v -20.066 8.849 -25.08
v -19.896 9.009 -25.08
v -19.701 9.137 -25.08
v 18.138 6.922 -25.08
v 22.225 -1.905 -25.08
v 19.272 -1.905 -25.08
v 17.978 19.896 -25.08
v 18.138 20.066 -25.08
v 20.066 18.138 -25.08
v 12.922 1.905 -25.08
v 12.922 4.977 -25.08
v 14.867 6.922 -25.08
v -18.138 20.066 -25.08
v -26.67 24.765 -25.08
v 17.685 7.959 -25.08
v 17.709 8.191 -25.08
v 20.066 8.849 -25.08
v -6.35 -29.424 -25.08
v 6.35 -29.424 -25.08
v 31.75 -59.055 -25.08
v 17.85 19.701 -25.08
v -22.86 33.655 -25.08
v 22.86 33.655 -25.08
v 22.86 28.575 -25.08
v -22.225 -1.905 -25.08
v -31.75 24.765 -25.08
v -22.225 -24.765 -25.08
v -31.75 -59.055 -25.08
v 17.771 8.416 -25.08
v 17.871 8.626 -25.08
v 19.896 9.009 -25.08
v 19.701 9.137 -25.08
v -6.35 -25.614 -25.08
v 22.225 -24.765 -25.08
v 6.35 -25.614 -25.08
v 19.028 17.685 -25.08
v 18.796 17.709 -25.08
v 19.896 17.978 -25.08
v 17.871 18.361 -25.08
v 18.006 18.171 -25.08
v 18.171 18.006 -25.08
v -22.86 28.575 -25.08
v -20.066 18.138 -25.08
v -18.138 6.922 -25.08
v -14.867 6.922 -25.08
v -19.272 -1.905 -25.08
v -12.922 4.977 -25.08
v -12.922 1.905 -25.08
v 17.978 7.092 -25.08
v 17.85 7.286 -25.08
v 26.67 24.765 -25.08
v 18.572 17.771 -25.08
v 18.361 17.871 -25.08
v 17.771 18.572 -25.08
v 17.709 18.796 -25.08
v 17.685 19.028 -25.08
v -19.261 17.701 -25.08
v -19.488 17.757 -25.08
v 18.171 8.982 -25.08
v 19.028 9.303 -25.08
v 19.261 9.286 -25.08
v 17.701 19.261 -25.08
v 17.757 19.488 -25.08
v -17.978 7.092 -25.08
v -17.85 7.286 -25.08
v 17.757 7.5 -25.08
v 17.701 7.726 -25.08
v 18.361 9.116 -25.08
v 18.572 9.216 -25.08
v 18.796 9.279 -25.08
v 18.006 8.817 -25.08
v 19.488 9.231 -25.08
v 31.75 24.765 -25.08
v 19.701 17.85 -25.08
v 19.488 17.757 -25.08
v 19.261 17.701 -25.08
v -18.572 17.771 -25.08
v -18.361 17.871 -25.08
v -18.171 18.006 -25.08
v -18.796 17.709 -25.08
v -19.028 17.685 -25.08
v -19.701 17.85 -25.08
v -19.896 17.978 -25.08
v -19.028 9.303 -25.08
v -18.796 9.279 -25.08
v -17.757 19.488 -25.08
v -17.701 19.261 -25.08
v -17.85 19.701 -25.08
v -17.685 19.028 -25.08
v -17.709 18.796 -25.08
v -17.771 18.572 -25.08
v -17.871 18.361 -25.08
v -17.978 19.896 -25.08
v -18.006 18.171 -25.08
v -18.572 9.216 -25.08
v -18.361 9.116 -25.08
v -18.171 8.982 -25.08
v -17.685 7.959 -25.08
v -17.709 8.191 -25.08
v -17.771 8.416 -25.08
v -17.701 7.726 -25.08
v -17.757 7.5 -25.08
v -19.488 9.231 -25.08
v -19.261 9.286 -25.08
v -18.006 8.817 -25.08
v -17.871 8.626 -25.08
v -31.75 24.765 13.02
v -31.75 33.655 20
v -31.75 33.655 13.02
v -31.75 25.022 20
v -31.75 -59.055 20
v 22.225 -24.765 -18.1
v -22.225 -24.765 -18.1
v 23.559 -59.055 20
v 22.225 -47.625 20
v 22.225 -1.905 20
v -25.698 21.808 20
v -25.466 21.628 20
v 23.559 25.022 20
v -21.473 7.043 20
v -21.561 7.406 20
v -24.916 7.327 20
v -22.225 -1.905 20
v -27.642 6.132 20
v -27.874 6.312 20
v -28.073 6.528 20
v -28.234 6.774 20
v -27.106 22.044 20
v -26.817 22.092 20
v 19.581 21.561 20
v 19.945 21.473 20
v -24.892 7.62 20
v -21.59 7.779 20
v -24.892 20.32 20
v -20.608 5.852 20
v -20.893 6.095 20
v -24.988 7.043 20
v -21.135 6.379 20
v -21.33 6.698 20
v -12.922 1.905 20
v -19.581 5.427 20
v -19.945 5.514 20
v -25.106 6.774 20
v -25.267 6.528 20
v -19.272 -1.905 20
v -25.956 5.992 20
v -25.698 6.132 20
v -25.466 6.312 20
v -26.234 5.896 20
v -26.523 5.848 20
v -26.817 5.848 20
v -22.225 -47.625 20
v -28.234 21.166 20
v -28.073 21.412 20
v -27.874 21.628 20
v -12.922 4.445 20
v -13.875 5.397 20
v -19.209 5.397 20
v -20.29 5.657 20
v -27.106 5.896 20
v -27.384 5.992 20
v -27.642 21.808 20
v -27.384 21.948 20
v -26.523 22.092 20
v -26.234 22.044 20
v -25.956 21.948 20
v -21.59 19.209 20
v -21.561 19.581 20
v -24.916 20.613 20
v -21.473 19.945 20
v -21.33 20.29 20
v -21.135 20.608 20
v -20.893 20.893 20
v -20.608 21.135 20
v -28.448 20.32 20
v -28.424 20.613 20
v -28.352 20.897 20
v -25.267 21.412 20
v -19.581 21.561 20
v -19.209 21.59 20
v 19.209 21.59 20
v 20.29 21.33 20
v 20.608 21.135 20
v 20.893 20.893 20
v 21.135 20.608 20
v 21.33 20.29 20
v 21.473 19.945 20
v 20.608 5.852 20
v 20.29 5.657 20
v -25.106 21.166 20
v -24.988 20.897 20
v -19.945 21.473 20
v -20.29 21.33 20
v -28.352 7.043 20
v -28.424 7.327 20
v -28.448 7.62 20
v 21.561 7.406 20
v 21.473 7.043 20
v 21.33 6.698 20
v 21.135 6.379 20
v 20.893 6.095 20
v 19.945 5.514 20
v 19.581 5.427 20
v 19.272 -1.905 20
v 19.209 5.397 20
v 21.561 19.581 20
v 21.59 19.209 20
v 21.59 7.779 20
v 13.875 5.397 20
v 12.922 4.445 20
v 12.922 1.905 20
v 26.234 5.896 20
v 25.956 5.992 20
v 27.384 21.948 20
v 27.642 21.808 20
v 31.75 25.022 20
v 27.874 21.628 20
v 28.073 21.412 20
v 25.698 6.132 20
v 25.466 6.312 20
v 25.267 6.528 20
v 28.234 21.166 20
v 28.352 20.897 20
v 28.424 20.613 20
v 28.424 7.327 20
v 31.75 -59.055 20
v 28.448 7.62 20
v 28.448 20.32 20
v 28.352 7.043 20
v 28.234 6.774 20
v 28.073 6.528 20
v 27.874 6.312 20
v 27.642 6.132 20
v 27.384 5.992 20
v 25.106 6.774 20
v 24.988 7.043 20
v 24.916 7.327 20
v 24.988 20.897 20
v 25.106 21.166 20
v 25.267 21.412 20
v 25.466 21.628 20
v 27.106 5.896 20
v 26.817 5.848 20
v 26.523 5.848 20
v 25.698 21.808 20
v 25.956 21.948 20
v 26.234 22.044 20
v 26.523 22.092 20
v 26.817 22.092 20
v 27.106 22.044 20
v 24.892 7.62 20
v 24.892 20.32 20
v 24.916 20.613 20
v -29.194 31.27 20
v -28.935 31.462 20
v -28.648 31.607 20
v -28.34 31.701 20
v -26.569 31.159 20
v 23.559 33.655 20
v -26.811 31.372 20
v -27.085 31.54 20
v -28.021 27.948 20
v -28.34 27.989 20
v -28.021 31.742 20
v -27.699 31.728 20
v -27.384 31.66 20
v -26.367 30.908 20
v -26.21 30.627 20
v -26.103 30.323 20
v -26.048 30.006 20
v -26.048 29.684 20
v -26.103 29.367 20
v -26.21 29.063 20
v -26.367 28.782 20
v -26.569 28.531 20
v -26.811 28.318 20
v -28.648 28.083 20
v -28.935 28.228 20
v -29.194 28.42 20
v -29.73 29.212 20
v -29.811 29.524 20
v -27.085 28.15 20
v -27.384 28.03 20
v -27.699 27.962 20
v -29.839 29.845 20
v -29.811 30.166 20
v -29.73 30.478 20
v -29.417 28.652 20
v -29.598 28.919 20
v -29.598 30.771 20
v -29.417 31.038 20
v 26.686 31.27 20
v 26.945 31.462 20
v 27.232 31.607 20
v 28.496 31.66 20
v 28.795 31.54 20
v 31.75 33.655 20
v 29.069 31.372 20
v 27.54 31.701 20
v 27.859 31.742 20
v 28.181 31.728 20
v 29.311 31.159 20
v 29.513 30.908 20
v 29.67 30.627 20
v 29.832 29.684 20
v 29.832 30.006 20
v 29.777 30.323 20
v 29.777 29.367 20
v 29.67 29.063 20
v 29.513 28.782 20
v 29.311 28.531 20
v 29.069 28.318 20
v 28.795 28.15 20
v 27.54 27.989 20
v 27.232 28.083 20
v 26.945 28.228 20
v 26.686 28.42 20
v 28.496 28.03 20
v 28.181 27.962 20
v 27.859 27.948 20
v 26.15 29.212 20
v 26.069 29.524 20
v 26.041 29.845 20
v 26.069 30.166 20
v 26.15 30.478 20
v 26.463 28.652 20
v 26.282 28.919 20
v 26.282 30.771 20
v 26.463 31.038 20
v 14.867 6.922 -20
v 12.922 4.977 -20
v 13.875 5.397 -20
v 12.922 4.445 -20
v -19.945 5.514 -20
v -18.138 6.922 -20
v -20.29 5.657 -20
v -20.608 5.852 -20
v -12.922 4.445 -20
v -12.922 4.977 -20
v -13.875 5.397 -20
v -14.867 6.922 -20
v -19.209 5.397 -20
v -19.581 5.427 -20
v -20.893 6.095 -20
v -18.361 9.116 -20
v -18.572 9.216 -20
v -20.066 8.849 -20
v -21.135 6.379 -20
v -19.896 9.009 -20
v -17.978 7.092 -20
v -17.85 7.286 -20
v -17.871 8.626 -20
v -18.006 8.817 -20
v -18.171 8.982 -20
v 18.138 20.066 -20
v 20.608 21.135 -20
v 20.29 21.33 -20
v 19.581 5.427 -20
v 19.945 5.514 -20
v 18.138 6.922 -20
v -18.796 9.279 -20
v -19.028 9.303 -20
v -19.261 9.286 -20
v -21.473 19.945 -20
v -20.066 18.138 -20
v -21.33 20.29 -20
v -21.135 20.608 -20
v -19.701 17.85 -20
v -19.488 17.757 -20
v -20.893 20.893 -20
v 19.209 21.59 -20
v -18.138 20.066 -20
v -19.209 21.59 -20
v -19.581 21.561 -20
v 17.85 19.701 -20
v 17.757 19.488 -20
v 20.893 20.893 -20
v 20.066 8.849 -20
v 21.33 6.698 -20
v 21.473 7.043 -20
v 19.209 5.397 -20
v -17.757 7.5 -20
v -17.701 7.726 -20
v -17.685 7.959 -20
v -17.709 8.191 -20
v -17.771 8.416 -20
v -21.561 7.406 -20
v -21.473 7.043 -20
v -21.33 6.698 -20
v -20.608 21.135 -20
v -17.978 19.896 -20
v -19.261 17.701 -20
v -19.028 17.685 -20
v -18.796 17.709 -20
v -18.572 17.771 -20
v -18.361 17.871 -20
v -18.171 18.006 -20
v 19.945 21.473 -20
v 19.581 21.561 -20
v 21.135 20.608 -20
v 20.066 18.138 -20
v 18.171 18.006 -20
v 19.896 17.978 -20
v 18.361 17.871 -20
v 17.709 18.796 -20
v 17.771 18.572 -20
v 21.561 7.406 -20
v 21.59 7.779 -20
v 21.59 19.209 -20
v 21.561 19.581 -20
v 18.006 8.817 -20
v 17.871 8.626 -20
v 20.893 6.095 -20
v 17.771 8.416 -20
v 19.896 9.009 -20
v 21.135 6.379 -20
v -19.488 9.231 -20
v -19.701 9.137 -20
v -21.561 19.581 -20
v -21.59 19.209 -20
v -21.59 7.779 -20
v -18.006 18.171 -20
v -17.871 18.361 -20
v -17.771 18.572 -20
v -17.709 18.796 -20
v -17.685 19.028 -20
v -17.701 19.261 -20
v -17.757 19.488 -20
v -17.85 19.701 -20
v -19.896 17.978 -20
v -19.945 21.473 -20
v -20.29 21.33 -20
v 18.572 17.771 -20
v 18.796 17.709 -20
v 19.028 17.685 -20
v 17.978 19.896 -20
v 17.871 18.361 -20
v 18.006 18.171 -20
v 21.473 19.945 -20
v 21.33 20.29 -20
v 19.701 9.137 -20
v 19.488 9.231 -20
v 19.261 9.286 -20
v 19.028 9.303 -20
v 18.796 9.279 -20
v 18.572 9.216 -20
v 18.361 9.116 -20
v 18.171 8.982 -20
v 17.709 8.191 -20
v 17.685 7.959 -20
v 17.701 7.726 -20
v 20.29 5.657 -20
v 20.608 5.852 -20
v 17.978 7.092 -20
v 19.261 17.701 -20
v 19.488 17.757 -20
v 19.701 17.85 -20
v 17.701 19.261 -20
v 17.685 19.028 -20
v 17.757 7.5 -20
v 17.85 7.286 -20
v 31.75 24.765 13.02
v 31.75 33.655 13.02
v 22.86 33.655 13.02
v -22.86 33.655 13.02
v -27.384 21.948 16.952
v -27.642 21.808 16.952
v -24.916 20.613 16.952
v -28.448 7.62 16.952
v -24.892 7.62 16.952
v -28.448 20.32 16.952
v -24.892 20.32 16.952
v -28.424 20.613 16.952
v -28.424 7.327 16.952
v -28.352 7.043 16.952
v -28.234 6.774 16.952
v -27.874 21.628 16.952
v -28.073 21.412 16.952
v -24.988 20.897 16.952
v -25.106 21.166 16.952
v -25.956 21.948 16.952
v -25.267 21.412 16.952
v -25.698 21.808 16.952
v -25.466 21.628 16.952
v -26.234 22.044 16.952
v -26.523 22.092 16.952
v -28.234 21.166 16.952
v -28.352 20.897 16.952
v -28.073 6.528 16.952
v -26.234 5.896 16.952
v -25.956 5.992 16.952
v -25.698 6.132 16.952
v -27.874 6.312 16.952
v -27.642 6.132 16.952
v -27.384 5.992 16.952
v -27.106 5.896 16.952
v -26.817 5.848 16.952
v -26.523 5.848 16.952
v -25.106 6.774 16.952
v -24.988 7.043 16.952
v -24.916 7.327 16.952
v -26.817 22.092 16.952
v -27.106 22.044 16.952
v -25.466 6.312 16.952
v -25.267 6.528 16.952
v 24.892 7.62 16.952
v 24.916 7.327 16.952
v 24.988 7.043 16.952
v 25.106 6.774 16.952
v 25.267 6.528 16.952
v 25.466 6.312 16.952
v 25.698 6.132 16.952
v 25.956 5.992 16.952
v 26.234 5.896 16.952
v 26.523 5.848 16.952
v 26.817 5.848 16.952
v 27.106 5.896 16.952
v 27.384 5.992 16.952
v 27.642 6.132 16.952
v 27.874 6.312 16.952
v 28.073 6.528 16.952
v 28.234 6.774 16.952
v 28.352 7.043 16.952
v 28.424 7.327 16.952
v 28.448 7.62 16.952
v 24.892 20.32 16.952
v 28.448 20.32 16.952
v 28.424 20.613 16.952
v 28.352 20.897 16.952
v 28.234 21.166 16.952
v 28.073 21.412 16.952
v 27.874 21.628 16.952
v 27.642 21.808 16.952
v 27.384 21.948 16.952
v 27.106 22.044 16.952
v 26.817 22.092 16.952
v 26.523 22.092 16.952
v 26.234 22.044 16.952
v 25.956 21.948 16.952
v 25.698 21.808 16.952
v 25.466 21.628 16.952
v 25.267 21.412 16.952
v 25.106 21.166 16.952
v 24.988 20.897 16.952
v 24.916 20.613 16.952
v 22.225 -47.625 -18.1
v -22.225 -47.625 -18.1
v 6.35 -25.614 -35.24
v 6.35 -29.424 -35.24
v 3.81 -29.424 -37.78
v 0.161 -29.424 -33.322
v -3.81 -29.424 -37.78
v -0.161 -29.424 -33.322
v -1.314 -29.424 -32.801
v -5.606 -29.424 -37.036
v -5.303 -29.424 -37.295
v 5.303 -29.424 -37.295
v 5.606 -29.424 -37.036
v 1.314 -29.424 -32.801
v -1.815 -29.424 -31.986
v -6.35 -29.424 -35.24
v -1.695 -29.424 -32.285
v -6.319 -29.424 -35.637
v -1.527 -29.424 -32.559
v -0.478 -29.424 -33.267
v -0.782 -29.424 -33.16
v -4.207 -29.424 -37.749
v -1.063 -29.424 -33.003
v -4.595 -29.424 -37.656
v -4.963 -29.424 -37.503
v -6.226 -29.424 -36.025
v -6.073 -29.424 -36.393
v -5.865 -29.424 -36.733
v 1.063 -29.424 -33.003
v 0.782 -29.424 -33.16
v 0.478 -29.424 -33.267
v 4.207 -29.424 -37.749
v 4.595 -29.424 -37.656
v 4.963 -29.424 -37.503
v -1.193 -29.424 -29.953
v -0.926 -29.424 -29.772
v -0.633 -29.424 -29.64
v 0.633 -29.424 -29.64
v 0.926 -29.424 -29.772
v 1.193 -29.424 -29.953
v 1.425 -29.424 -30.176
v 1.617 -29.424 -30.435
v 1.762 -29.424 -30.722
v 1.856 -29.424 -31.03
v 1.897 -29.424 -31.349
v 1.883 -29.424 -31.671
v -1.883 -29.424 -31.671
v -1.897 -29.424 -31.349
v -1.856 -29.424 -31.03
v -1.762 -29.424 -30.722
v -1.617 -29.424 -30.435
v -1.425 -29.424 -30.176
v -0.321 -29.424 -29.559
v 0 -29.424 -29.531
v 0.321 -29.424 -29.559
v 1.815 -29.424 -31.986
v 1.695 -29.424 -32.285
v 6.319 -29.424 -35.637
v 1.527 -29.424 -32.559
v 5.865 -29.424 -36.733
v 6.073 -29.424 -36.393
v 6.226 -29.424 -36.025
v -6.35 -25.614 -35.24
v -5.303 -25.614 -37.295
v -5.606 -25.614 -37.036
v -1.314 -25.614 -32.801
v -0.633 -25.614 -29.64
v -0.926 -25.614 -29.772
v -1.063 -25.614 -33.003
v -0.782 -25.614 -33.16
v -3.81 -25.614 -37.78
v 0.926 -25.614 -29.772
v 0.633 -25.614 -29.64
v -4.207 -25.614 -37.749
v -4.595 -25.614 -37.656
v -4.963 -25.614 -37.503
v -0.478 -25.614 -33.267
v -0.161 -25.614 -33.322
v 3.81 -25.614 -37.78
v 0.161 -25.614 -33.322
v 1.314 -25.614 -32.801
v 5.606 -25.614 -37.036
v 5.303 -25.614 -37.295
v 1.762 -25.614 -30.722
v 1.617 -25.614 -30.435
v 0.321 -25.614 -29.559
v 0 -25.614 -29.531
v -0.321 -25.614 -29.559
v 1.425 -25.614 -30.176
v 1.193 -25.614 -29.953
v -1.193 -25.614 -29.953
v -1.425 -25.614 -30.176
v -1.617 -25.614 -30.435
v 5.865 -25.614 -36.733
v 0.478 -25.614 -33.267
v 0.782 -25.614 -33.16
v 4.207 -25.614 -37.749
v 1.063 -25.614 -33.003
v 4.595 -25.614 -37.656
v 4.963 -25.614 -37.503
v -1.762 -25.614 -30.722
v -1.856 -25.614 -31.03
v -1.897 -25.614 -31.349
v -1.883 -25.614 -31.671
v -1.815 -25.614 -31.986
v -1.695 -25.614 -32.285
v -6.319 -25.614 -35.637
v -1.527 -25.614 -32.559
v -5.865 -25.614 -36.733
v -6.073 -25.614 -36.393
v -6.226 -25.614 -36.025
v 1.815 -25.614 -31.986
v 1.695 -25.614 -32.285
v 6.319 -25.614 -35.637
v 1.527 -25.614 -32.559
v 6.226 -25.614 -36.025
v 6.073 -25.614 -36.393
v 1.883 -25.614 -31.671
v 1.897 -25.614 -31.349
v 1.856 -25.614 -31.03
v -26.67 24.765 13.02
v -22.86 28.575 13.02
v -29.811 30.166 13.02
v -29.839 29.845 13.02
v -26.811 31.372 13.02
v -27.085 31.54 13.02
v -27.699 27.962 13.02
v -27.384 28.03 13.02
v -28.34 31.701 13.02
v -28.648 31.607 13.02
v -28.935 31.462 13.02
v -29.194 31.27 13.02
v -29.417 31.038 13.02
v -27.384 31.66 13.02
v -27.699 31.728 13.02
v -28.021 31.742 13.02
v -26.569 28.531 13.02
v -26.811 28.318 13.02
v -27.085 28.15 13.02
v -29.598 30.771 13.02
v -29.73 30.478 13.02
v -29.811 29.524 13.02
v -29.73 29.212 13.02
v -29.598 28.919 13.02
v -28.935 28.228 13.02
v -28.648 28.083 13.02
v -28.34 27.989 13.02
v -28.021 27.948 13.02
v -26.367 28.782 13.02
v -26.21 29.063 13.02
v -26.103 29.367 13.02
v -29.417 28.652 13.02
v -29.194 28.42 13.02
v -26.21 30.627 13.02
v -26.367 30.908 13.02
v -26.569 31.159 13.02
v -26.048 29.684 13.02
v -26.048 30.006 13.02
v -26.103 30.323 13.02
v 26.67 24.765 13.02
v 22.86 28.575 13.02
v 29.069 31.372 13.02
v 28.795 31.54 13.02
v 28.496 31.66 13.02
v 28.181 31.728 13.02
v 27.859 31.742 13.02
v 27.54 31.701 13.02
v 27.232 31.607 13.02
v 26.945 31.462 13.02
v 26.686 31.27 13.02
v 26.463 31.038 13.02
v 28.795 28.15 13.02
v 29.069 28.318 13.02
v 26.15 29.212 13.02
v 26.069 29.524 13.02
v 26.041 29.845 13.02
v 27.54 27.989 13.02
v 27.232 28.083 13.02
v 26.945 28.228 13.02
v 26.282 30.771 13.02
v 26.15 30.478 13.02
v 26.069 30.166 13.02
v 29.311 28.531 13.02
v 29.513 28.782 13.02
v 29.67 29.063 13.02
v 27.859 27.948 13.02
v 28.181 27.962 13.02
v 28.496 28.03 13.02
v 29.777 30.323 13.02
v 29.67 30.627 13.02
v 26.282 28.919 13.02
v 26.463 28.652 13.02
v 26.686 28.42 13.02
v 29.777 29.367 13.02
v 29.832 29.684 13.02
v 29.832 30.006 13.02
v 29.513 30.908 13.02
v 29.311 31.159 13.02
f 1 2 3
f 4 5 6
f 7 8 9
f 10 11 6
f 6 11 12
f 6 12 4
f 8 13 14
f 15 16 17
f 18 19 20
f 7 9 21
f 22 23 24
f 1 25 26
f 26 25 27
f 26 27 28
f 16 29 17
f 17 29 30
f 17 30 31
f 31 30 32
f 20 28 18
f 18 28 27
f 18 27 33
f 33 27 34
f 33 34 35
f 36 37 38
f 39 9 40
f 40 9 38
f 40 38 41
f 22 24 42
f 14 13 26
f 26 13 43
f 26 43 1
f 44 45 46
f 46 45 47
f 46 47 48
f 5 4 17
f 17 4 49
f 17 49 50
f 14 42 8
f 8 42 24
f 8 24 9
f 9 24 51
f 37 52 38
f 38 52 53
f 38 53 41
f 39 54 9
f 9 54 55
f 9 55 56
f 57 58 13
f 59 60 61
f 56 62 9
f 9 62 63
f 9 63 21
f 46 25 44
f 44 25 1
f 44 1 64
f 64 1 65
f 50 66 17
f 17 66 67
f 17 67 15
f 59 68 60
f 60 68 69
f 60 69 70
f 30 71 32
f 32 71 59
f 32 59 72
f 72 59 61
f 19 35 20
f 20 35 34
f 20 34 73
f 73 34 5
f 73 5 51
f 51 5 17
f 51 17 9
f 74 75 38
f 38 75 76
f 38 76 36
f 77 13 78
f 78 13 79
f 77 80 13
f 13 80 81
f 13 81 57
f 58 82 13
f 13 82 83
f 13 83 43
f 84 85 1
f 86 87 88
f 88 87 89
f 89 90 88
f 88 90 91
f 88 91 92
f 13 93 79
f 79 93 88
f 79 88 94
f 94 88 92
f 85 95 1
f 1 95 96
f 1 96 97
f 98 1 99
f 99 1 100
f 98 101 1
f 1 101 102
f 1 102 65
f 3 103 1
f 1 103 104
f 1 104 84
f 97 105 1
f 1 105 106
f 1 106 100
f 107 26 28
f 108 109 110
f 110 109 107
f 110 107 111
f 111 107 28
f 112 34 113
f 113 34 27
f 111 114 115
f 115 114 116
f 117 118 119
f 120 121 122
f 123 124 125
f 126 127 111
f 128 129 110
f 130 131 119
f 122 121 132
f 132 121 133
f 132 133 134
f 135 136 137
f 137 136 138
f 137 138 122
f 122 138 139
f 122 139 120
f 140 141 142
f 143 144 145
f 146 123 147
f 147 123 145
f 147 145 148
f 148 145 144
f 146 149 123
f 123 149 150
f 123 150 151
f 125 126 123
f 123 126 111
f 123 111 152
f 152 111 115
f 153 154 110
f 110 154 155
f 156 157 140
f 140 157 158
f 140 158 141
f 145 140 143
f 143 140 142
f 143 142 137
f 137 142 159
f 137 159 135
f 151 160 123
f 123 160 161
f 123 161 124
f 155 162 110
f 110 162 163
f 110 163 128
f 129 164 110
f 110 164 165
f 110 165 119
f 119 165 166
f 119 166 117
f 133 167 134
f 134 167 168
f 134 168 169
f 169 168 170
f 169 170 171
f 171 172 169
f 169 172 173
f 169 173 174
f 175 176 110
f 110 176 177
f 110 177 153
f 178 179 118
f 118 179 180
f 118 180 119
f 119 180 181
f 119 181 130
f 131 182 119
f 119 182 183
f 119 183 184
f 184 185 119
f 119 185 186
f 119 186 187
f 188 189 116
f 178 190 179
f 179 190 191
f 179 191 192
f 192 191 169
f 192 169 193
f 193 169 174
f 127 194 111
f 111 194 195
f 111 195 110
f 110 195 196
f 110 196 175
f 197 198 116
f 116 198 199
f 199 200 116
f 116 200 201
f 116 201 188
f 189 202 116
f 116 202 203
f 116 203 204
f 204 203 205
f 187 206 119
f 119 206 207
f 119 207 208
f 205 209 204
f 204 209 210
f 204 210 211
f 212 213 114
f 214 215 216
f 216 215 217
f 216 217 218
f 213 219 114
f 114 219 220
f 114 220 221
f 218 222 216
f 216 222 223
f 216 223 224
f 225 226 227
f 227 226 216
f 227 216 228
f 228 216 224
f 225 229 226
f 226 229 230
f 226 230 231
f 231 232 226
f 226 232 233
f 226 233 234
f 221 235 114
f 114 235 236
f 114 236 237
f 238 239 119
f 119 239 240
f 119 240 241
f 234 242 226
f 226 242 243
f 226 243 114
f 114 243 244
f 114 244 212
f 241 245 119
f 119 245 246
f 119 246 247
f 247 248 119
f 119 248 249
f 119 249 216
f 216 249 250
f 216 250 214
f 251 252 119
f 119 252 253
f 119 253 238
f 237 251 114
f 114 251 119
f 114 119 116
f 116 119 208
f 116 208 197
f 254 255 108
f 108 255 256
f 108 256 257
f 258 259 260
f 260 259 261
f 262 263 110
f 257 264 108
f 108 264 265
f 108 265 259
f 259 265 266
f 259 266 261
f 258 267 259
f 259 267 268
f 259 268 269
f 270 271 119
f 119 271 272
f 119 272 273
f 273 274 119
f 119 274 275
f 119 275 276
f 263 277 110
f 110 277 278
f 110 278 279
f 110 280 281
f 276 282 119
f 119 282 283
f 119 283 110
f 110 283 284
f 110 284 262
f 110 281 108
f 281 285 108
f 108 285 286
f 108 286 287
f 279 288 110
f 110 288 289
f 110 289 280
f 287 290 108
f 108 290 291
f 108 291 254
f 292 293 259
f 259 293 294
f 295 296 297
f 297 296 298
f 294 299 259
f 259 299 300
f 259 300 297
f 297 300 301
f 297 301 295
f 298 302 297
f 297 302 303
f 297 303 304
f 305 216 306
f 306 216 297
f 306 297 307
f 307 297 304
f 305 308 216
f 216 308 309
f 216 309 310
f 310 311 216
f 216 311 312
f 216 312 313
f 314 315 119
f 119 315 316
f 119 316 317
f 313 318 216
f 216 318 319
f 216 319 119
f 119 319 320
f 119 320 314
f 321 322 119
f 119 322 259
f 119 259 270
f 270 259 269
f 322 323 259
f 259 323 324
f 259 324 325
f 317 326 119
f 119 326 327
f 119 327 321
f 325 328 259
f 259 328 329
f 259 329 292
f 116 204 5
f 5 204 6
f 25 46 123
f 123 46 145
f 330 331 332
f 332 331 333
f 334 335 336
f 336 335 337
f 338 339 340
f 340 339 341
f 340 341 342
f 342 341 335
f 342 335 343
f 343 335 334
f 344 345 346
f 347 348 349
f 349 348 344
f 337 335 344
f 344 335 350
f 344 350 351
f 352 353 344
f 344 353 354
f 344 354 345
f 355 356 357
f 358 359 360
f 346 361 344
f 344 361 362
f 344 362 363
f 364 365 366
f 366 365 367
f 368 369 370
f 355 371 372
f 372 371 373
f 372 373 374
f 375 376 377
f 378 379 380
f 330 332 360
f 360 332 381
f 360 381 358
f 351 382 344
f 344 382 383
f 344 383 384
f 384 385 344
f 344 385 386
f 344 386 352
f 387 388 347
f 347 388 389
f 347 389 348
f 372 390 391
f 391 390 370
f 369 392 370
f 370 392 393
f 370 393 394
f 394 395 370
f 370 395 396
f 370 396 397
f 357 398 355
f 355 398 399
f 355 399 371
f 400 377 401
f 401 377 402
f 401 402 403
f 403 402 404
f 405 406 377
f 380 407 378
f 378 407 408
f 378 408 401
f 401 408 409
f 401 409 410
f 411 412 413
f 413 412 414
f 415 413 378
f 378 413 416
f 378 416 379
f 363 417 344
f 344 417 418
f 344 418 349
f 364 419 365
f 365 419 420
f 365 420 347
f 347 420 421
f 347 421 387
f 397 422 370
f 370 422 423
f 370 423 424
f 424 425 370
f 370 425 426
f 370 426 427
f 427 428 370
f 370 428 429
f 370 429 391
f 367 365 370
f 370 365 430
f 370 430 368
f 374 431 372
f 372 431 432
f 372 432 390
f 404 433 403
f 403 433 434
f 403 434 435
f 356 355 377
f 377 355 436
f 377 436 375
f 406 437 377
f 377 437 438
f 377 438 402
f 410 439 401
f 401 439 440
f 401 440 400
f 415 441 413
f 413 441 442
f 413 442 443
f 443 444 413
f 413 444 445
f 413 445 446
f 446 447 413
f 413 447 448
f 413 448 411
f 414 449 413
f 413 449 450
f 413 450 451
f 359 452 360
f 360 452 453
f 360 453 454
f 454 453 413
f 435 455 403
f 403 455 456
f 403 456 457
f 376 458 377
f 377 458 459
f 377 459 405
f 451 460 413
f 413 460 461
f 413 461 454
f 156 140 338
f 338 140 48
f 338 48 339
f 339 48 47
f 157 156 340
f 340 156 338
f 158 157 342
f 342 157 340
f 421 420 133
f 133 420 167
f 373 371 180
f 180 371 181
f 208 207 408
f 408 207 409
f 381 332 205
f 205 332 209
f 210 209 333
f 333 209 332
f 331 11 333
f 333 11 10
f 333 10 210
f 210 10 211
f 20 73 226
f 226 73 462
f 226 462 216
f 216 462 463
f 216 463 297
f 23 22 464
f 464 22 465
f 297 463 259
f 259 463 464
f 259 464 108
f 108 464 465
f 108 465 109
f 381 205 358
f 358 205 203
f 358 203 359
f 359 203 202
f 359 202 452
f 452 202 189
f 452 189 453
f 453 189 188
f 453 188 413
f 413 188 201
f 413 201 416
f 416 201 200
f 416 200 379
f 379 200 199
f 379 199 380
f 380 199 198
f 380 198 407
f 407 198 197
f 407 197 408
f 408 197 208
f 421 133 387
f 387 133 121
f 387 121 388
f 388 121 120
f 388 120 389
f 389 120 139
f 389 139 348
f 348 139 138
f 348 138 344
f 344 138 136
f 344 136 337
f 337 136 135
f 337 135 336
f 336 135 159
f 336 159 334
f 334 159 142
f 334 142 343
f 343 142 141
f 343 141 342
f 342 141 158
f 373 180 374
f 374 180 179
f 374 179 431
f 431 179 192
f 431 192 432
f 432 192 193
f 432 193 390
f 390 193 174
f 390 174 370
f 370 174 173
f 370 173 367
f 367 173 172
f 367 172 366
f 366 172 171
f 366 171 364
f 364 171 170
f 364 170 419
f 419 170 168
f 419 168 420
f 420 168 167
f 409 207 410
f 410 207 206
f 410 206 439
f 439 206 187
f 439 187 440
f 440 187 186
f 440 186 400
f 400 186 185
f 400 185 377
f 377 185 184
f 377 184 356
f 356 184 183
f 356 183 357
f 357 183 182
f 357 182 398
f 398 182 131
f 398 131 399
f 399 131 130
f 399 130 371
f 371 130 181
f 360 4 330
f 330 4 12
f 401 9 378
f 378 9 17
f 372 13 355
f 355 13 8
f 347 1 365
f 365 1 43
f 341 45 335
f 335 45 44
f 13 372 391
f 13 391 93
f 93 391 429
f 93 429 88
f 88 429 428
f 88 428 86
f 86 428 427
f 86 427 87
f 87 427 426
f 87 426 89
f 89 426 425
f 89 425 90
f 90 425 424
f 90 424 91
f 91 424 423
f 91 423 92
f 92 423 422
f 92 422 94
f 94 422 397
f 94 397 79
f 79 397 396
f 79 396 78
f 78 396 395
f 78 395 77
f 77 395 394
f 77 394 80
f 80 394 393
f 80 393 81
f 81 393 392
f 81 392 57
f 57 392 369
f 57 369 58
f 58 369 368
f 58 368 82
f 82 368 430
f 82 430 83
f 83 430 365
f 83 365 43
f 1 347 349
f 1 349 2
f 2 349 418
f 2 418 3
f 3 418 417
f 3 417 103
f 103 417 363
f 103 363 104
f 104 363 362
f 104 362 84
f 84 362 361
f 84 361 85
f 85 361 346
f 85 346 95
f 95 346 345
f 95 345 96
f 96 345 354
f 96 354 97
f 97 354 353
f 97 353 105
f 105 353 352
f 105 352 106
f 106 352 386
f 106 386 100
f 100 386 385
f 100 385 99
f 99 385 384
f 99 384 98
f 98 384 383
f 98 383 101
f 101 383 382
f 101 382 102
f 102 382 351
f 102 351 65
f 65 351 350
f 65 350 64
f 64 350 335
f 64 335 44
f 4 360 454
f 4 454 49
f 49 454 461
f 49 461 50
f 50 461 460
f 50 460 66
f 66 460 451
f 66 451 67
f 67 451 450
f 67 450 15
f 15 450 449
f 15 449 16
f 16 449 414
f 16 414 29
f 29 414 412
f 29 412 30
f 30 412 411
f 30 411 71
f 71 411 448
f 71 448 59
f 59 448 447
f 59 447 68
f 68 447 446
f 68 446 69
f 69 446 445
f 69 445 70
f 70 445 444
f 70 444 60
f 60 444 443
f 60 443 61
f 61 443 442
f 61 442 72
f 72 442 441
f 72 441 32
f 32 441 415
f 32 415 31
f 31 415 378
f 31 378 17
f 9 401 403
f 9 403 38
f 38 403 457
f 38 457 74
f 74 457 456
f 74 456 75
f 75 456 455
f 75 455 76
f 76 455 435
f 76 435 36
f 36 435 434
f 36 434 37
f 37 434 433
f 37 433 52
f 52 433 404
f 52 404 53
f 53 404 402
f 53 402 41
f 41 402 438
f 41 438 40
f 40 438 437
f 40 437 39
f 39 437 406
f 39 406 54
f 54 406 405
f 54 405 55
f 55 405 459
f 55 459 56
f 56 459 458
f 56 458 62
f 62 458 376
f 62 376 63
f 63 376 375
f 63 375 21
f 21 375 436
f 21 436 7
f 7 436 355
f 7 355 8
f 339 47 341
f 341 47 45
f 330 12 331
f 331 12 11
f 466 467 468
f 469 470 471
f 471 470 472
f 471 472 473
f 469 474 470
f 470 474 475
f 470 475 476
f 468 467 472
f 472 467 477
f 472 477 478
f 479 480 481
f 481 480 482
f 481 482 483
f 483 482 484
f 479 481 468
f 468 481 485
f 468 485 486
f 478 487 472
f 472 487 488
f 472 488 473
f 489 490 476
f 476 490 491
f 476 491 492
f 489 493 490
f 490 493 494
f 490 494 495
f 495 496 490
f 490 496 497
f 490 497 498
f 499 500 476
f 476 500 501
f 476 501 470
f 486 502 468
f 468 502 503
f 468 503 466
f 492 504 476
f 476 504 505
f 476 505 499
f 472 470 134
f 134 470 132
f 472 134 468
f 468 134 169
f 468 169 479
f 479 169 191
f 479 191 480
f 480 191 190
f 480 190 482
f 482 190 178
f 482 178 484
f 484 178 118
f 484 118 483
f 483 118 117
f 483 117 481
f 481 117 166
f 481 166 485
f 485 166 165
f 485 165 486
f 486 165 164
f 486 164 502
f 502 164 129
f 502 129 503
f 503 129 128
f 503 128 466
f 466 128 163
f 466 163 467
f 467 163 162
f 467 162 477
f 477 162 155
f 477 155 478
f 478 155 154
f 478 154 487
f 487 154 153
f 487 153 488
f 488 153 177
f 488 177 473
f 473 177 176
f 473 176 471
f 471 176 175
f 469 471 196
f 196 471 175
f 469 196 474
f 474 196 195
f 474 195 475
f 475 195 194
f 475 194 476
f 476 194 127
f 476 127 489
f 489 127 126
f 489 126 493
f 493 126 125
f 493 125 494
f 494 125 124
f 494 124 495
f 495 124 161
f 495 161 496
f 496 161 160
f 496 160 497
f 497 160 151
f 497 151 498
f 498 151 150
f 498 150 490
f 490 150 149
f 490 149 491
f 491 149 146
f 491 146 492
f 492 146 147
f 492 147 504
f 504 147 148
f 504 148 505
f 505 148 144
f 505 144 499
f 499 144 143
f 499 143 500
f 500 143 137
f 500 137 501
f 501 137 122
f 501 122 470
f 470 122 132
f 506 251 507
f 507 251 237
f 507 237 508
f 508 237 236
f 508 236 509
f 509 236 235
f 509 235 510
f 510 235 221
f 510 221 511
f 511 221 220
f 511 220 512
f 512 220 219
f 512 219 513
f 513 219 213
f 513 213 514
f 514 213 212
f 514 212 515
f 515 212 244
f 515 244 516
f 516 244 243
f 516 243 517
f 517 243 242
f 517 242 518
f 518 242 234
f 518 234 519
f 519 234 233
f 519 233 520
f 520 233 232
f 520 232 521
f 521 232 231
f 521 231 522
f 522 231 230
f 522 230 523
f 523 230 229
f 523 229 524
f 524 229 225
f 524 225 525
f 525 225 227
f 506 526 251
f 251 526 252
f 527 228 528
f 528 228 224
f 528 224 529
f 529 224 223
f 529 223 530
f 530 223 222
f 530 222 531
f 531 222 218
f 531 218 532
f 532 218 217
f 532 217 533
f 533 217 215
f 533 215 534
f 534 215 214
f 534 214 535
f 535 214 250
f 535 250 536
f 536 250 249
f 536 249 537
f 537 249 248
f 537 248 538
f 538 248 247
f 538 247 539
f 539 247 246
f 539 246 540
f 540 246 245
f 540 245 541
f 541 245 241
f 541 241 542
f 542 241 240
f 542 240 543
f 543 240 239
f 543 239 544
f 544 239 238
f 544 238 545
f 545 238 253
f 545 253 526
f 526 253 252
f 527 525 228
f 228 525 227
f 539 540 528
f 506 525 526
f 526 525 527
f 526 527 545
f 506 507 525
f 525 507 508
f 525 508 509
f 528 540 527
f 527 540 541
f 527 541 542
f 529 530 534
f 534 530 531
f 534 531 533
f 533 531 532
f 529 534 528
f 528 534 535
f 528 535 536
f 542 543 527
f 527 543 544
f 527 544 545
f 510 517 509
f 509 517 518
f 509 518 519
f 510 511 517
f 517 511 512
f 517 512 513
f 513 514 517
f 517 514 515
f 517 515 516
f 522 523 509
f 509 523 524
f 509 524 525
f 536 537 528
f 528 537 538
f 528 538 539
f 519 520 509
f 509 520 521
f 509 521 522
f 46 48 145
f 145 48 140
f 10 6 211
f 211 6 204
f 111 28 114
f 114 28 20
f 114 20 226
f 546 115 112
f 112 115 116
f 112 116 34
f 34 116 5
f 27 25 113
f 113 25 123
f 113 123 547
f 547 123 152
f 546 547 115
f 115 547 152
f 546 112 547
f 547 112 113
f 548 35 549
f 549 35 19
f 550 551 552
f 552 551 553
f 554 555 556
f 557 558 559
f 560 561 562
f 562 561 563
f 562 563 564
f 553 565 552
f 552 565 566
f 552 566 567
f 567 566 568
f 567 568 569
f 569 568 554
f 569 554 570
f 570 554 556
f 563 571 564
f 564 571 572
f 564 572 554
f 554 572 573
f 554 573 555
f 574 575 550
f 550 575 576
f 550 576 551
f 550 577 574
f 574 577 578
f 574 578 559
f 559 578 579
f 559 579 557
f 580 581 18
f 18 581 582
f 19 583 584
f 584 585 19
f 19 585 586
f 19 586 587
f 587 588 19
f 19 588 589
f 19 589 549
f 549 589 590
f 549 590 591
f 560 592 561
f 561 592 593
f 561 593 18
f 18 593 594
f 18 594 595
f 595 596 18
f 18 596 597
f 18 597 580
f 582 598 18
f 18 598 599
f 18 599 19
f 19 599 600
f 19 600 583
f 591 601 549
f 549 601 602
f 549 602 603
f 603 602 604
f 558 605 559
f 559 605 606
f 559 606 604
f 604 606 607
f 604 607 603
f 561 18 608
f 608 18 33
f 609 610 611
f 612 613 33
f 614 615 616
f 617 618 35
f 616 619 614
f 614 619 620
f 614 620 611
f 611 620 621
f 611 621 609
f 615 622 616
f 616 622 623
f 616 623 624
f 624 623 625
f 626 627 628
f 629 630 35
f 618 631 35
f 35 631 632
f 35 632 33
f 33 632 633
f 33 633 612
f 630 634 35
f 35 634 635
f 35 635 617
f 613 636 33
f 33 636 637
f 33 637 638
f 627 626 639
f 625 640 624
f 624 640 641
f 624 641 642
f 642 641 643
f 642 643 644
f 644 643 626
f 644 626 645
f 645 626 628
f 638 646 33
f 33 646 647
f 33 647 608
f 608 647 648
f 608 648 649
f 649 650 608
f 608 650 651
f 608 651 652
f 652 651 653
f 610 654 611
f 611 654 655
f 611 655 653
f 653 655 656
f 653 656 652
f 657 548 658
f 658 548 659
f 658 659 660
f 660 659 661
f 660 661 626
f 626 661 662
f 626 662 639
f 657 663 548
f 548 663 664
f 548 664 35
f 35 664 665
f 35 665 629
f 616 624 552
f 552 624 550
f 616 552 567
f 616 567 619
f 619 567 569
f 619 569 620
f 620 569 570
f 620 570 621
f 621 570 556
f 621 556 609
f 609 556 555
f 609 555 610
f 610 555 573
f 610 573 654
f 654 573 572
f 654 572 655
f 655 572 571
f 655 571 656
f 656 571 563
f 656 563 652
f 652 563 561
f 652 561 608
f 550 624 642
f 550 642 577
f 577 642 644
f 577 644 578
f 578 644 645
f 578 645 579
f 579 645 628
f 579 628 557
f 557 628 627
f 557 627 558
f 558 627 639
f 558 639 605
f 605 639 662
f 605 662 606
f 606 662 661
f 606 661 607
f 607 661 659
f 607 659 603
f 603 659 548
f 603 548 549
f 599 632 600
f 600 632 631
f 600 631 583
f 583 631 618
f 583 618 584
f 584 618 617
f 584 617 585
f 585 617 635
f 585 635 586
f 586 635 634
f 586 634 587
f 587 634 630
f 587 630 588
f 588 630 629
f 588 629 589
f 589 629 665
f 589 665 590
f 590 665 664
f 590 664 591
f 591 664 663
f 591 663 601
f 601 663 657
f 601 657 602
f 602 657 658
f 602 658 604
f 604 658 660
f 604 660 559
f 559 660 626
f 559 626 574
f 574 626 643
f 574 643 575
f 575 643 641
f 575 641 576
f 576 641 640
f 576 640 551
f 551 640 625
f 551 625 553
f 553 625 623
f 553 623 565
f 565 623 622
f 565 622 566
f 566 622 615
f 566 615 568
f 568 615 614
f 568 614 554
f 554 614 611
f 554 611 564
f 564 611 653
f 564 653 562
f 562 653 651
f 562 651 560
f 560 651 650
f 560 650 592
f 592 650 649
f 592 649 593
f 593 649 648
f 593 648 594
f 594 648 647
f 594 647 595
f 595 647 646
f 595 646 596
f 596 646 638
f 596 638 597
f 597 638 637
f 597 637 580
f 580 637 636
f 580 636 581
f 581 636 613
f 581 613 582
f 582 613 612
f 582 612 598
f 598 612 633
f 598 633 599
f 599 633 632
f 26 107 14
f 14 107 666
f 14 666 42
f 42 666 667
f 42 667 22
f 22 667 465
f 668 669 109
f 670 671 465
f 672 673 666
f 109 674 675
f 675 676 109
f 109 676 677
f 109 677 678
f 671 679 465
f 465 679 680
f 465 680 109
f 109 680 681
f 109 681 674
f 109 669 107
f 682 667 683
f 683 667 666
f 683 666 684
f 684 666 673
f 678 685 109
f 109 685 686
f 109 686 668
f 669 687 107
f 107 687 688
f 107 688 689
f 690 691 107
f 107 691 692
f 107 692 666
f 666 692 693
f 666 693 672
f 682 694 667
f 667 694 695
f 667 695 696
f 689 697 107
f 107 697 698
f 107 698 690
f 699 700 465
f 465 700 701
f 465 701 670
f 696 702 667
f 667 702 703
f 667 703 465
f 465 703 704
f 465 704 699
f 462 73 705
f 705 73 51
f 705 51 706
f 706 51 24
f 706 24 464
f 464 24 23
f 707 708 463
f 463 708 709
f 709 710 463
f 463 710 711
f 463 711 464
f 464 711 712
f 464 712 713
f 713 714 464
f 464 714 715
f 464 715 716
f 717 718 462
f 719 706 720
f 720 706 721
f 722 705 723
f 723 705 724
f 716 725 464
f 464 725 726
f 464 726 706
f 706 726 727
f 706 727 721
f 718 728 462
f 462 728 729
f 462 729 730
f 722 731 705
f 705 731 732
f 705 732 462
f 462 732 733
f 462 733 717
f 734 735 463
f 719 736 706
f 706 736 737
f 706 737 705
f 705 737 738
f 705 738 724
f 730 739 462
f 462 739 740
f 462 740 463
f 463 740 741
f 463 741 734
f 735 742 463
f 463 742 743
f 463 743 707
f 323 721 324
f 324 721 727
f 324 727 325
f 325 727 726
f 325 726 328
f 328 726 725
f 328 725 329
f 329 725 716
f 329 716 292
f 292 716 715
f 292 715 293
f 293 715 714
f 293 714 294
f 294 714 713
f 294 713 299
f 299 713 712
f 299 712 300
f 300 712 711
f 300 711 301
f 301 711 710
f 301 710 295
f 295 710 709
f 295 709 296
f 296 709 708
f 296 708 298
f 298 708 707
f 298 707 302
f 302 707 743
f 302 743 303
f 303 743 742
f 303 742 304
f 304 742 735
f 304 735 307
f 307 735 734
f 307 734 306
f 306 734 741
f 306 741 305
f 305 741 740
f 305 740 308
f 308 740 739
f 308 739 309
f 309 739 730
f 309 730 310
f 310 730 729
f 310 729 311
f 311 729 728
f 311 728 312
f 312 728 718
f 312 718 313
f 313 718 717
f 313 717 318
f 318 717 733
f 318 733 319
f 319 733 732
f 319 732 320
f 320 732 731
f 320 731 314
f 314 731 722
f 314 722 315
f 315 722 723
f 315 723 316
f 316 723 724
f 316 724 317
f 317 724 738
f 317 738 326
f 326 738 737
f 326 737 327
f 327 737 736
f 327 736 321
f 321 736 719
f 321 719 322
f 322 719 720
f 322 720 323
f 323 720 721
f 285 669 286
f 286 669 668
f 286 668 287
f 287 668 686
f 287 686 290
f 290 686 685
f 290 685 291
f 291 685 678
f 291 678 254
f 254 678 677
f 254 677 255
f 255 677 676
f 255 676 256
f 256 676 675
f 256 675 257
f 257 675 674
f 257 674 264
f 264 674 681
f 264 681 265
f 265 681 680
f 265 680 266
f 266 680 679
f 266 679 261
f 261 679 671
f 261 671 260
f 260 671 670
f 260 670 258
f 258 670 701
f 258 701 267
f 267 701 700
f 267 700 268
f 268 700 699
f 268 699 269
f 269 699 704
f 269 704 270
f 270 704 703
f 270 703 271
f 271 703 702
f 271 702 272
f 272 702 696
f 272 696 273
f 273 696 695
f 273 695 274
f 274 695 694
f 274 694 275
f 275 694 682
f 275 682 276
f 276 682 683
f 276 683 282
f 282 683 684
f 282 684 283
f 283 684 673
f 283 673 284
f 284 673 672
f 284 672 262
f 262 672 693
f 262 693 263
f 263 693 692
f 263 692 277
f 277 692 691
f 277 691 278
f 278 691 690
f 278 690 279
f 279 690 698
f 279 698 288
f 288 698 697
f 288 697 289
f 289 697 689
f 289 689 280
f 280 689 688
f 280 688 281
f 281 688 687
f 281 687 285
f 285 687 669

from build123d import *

# Parameters (mm, degrees)
BOSS_EXTRU_1_DEPTH      = 20
CONG_1_R                = 2.38125
ESQUISSE2_W             = 63.5
ESQUISSE2_H             = 35.56
BOSS_EXTRU_2_DEPTH      = 5.08
EMPREINTE1_START        = -25.08
EMPREINTE1_DEPTH        = 5.08
D_PLACER_START          = -25.08
D_PLACER_LA_FACE1_DEPTH = 5.08
EMPREINTE4_START        = 17.46
EMPREINTE4_DEPTH        = 2.54
D_PLACER_START_2        = 16.952
D_PLACER_LA_FACE2_DEPTH = 3.048
CHANFREIN1_SIZE         = 6.35
CHANFREIN1_SIZE2        = 3.81
CHANFREIN2_SIZE         = 3.81
CHANFREIN2_SIZE2        = 6.35
BOSS_EXTRU_3_DEPTH      = 45.08
ESQUISSE4_W             = 44.45
ESQUISSE4_H             = 22.86
ENL_V_MAT_EXTRU_1_DEPTH = 38.1
ESQUISSE5_W             = 12.7
ESQUISSE5_H             = 3.81
BOSS_EXTRU_4_DEPTH      = 12.7
CONG_2_R                = 2.54
D_GAGEMENT_61_D         = 3.7973
ENL_V_START             = -38.1
ENL_V_MAT_EXTRU_2_DEPTH = 119.894566185
D_GAGEMENT_62_D         = 3.7973
D_GAGEMENT_62_DEPTH     = 18.796
D_GAGEMENT_62_TIP       = 1.140824014


# Read off the part's stored shape, not the designer's step: Empreinte1, Déplacer la face1, Empreinte4, Déplacer la face2
with BuildPart() as part:
    # Esquisse1 → Boss.-Extru.1 (new, symmetric)
    with BuildSketch(Plane.XY):
        Polygon((-31.75, -1.905), (-31.75, 33.655), (31.75, 33.655), (31.75, -1.905), (12.92225, -1.905), (12.92225, 4.445), (13.87475, 5.3975), (21.59, 5.3975), (21.59, 21.59), (-21.59, 21.59), (-21.59, 5.3975), (-13.87475, 5.3975), (-12.92225, 4.445), (-12.92225, -1.905), align=None)
    extrude(amount=BOSS_EXTRU_1_DEPTH, both=True)

    # Congé1
    cong_1_edges = [part.edges().sort_by_distance(p)[0] for p in [
        (21.59, 5.3975, 0),
        (21.59, 21.59, 0),
        (-21.59, 21.59, 0),
        (-21.59, 5.3975, 0),
    ]]
    fillet(cong_1_edges, radius=CONG_1_R)

    # Esquisse2 → Boss.-Extru.2 (add)
    with BuildSketch(Plane(origin=(0, 0, -20), x_dir=(-1, 0, 0), z_dir=(0, 0, -1))):
        with Locations((0, 15.875)):
            Rectangle(ESQUISSE2_W, ESQUISSE2_H)
    extrude(amount=BOSS_EXTRU_2_DEPTH)

    # Empreinte1 outline → Empreinte1 (cut)
    with BuildSketch(Plane.XY.offset(EMPREINTE1_START)):
        with BuildLine():
            Line((14.44625, 7.9375), (16.66875, 7.9375))
            ThreePointArc((16.66875, 7.9375), (17.366201977, 9.621298023), (19.05, 10.31875))
            Line((19.05, 10.31875), (19.05, 16.66875))
            ThreePointArc((19.05, 16.66875), (17.366201977, 17.366201977), (16.66875, 19.05))
            Line((16.66875, 19.05), (-16.66875, 19.05))
            ThreePointArc((-16.66875, 19.05), (-17.366201977, 17.366201977), (-19.05, 16.66875))
            Line((-19.05, 16.66875), (-19.05, 10.31875))
            ThreePointArc((-19.05, 10.31875), (-17.366201977, 9.621298023), (-16.66875, 7.9375))
            Line((-16.66875, 7.9375), (-14.44625, 7.9375))
            Line((-14.44625, 7.9375), (-11.90625, 5.3975))
            Line((-11.90625, 5.3975), (-11.90625, -1.905))
            Line((-11.90625, -1.905), (11.90625, -1.905))
            Line((11.90625, -1.905), (11.90625, 5.3975))
            Line((11.90625, 5.3975), (14.44625, 7.9375))
        make_face()
    extrude(amount=EMPREINTE1_DEPTH, mode=Mode.SUBTRACT)

    # Déplacer la face1 outline → Déplacer la face1 (cut)
    with BuildSketch(Plane.XY.offset(D_PLACER_START)):
        with BuildLine():
            Line((-14.867090979, 6.9215), (-12.92225, 4.976659021))
            Line((-12.92225, 4.976659021), (-12.92225, -1.905))
            Line((-12.92225, -1.905), (-11.90625, -1.905))
            Line((-11.90625, -1.905), (-11.90625, 5.3975))
            Line((-11.90625, 5.3975), (-14.44625, 7.9375))
            Line((-14.44625, 7.9375), (-16.66875, 7.9375))
            ThreePointArc((-16.66875, 7.9375), (-17.366201977, 9.621298023), (-19.05, 10.31875))
            Line((-19.05, 10.31875), (-19.05, 16.66875))
            ThreePointArc((-19.05, 16.66875), (-17.366201977, 17.366201977), (-16.66875, 19.05))
            Line((-16.66875, 19.05), (16.66875, 19.05))
            ThreePointArc((16.66875, 19.05), (17.366201977, 17.366201977), (19.05, 16.66875))
            Line((19.05, 16.66875), (19.05, 10.31875))
            ThreePointArc((19.05, 10.31875), (17.366201977, 9.621298023), (16.66875, 7.9375))
            Line((16.66875, 7.9375), (14.44625, 7.9375))
            Line((14.44625, 7.9375), (11.90625, 5.3975))
            Line((11.90625, 5.3975), (11.90625, -1.905))
            Line((11.90625, -1.905), (12.92225, -1.905))
            Line((12.92225, -1.905), (12.92225, 4.976659021))
            Line((12.92225, 4.976659021), (14.867090979, 6.9215))
            Line((14.867090979, 6.9215), (18.13805068, 6.9215))
            ThreePointArc((18.13805068, 6.9215), (18.084622467, 8.902877533), (20.066, 8.84944932))
            Line((20.066, 8.84944932), (20.066, 18.13805068))
            ThreePointArc((20.066, 18.13805068), (18.084622467, 18.084622467), (18.13805068, 20.066))
            Line((18.13805068, 20.066), (-18.13805068, 20.066))
            ThreePointArc((-18.13805068, 20.066), (-18.084622467, 18.084622467), (-20.066, 18.13805068))
            Line((-20.066, 18.13805068), (-20.066, 8.84944932))
            ThreePointArc((-20.066, 8.84944932), (-18.084622467, 8.902877533), (-18.13805068, 6.9215))
            Line((-18.13805068, 6.9215), (-14.867090979, 6.9215))
        make_face()
    extrude(amount=D_PLACER_LA_FACE1_DEPTH, mode=Mode.SUBTRACT)

    # Empreinte4 outline → Empreinte4 (cut)
    with BuildSketch(Plane.XY.offset(EMPREINTE4_START)):
        with BuildLine():
            ThreePointArc((-27.94, 7.62), (-26.67, 6.35), (-25.4, 7.62))
            Line((-25.4, 7.62), (-25.4, 20.32))
            ThreePointArc((-25.4, 20.32), (-26.67, 21.59), (-27.94, 20.32))
            Line((-27.94, 20.32), (-27.94, 7.62))
        make_face()
        with BuildLine():
            Line((25.4, 20.32), (25.4, 7.62))
            ThreePointArc((25.4, 7.62), (26.67, 6.35), (27.94, 7.62))
            Line((27.94, 7.62), (27.94, 20.32))
            ThreePointArc((27.94, 20.32), (26.67, 21.59), (25.4, 20.32))
        make_face()
    extrude(amount=EMPREINTE4_DEPTH, mode=Mode.SUBTRACT)

    # Déplacer la face2 outline → Déplacer la face2 (cut)
    with BuildSketch(Plane.XY.offset(D_PLACER_START_2)):
        with BuildLine():
            ThreePointArc((-28.448, 7.62), (-26.67, 5.842), (-24.892, 7.62))
            Line((-24.892, 7.62), (-24.892, 20.32))
            ThreePointArc((-24.892, 20.32), (-26.67, 22.098), (-28.448, 20.32))
            Line((-28.448, 20.32), (-28.448, 7.62))
        make_face()
        with BuildLine():
            Line((24.892, 20.32), (24.892, 7.62))
            ThreePointArc((24.892, 7.62), (26.67, 5.842), (28.448, 7.62))
            Line((28.448, 7.62), (28.448, 20.32))
            ThreePointArc((28.448, 20.32), (26.67, 22.098), (24.892, 20.32))
        make_face()
    extrude(amount=D_PLACER_LA_FACE2_DEPTH, mode=Mode.SUBTRACT)

    # Chanfrein1
    chanfrein1_edges = [part.edges().sort_by_distance(p)[0] for p in [
        (-12.92225, -1.905, -2.54),
    ]]
    chanfrein1_side = [part.faces().sort_by_distance(p)[0] for p in [
        (-22.336125, -1.905, -2.54),
    ]]
    chamfer(chanfrein1_edges, length=CHANFREIN1_SIZE, length2=CHANFREIN1_SIZE2, reference=chanfrein1_side[0])

    # Chanfrein2
    chanfrein2_edges = [part.edges().sort_by_distance(p)[0] for p in [
        (12.92225, -1.905, -2.54),
    ]]
    chanfrein2_side = [part.faces().sort_by_distance(p)[0] for p in [
        (12.92225, 1.302160596, -2.726935132),
    ]]
    chamfer(chanfrein2_edges, length=CHANFREIN2_SIZE, length2=CHANFREIN2_SIZE2, reference=chanfrein2_side[0])

    # Esquisse3 → Boss.-Extru.3 (add)
    with BuildSketch(Plane.XY.offset(20)):
        Polygon((-31.75, -1.905), (-31.75, -59.055), (31.75, -59.055), (31.75, -1.905), (22.225, -1.905), (22.225, -24.765), (-22.225, -24.765), (-22.225, -1.905), align=None)
    extrude(amount=-BOSS_EXTRU_3_DEPTH)

    # Esquisse4 → Enlèv. mat.-Extru.1 (cut)
    with BuildSketch(Plane.XY.offset(20)):
        with Locations((0, -36.195)):
            Rectangle(ESQUISSE4_W, ESQUISSE4_H)
    extrude(amount=-ENL_V_MAT_EXTRU_1_DEPTH, mode=Mode.SUBTRACT)

    # Esquisse5 → Boss.-Extru.4 (add)
    with BuildSketch(Plane(origin=(0, 0, -25.08), x_dir=(-1, 0, 0), z_dir=(0, 0, -1))):
        with Locations((0, -27.519)):
            Rectangle(ESQUISSE5_W, ESQUISSE5_H)
    extrude(amount=BOSS_EXTRU_4_DEPTH)

    # Congé2
    cong_2_edges = [part.edges().sort_by_distance(p)[0] for p in [
        (6.35, -27.519, -37.78),
        (-6.35, -27.519, -37.78),
    ]]
    fillet(cong_2_edges, radius=CONG_2_R)

    # Dégagement #61 (through all)
    with Locations(Plane(origin=(0, -25.614, 0), x_dir=(1, 0, 0), z_dir=(0, 1, 0))):
        with Locations((0, 31.43)):
            Hole(D_GAGEMENT_61_D / 2)

    # Esquisse8 → Enlèv. mat.-Extru.2 (cut)
    with BuildSketch(Plane(origin=(0, 0, -25.08), x_dir=(-1, 0, 0), z_dir=(0, 0, -1)).offset(ENL_V_START)):
        Polygon((266.493356743, 33.655), (31.75, 33.655), (22.86, 33.655), (22.86, 28.575), (26.67, 24.765), (31.75, 24.765), (266.493356743, 24.765), (735.980070228, 24.765), (735.980070228, 33.655), align=None)
    enl_v_mat_extru_2 = extrude(amount=ENL_V_MAT_EXTRU_2_DEPTH, mode=Mode.SUBTRACT)

    # Symétrie1: Enlèv. mat.-Extru.2 across plane
    add(enl_v_mat_extru_2.mirror(Plane(origin=(0, 0, 0), x_dir=(0, 0, 1), z_dir=(1, 0, 0))), mode=Mode.SUBTRACT)

    # Dégagement #62
    with Locations(Plane(origin=(0, 0, 13.02), x_dir=(-1, 0, 0), z_dir=(0, 0, -1))):
        with Locations((27.94, 29.845), (-27.94, 29.845)):
            Hole(D_GAGEMENT_62_D / 2, depth=D_GAGEMENT_62_DEPTH)
            with Locations((0, 0, -(D_GAGEMENT_62_DEPTH + D_GAGEMENT_62_TIP / 2))):  # 118° drill point
                Cone(0, D_GAGEMENT_62_D / 2, D_GAGEMENT_62_TIP, mode=Mode.SUBTRACT)


solid = part.part
